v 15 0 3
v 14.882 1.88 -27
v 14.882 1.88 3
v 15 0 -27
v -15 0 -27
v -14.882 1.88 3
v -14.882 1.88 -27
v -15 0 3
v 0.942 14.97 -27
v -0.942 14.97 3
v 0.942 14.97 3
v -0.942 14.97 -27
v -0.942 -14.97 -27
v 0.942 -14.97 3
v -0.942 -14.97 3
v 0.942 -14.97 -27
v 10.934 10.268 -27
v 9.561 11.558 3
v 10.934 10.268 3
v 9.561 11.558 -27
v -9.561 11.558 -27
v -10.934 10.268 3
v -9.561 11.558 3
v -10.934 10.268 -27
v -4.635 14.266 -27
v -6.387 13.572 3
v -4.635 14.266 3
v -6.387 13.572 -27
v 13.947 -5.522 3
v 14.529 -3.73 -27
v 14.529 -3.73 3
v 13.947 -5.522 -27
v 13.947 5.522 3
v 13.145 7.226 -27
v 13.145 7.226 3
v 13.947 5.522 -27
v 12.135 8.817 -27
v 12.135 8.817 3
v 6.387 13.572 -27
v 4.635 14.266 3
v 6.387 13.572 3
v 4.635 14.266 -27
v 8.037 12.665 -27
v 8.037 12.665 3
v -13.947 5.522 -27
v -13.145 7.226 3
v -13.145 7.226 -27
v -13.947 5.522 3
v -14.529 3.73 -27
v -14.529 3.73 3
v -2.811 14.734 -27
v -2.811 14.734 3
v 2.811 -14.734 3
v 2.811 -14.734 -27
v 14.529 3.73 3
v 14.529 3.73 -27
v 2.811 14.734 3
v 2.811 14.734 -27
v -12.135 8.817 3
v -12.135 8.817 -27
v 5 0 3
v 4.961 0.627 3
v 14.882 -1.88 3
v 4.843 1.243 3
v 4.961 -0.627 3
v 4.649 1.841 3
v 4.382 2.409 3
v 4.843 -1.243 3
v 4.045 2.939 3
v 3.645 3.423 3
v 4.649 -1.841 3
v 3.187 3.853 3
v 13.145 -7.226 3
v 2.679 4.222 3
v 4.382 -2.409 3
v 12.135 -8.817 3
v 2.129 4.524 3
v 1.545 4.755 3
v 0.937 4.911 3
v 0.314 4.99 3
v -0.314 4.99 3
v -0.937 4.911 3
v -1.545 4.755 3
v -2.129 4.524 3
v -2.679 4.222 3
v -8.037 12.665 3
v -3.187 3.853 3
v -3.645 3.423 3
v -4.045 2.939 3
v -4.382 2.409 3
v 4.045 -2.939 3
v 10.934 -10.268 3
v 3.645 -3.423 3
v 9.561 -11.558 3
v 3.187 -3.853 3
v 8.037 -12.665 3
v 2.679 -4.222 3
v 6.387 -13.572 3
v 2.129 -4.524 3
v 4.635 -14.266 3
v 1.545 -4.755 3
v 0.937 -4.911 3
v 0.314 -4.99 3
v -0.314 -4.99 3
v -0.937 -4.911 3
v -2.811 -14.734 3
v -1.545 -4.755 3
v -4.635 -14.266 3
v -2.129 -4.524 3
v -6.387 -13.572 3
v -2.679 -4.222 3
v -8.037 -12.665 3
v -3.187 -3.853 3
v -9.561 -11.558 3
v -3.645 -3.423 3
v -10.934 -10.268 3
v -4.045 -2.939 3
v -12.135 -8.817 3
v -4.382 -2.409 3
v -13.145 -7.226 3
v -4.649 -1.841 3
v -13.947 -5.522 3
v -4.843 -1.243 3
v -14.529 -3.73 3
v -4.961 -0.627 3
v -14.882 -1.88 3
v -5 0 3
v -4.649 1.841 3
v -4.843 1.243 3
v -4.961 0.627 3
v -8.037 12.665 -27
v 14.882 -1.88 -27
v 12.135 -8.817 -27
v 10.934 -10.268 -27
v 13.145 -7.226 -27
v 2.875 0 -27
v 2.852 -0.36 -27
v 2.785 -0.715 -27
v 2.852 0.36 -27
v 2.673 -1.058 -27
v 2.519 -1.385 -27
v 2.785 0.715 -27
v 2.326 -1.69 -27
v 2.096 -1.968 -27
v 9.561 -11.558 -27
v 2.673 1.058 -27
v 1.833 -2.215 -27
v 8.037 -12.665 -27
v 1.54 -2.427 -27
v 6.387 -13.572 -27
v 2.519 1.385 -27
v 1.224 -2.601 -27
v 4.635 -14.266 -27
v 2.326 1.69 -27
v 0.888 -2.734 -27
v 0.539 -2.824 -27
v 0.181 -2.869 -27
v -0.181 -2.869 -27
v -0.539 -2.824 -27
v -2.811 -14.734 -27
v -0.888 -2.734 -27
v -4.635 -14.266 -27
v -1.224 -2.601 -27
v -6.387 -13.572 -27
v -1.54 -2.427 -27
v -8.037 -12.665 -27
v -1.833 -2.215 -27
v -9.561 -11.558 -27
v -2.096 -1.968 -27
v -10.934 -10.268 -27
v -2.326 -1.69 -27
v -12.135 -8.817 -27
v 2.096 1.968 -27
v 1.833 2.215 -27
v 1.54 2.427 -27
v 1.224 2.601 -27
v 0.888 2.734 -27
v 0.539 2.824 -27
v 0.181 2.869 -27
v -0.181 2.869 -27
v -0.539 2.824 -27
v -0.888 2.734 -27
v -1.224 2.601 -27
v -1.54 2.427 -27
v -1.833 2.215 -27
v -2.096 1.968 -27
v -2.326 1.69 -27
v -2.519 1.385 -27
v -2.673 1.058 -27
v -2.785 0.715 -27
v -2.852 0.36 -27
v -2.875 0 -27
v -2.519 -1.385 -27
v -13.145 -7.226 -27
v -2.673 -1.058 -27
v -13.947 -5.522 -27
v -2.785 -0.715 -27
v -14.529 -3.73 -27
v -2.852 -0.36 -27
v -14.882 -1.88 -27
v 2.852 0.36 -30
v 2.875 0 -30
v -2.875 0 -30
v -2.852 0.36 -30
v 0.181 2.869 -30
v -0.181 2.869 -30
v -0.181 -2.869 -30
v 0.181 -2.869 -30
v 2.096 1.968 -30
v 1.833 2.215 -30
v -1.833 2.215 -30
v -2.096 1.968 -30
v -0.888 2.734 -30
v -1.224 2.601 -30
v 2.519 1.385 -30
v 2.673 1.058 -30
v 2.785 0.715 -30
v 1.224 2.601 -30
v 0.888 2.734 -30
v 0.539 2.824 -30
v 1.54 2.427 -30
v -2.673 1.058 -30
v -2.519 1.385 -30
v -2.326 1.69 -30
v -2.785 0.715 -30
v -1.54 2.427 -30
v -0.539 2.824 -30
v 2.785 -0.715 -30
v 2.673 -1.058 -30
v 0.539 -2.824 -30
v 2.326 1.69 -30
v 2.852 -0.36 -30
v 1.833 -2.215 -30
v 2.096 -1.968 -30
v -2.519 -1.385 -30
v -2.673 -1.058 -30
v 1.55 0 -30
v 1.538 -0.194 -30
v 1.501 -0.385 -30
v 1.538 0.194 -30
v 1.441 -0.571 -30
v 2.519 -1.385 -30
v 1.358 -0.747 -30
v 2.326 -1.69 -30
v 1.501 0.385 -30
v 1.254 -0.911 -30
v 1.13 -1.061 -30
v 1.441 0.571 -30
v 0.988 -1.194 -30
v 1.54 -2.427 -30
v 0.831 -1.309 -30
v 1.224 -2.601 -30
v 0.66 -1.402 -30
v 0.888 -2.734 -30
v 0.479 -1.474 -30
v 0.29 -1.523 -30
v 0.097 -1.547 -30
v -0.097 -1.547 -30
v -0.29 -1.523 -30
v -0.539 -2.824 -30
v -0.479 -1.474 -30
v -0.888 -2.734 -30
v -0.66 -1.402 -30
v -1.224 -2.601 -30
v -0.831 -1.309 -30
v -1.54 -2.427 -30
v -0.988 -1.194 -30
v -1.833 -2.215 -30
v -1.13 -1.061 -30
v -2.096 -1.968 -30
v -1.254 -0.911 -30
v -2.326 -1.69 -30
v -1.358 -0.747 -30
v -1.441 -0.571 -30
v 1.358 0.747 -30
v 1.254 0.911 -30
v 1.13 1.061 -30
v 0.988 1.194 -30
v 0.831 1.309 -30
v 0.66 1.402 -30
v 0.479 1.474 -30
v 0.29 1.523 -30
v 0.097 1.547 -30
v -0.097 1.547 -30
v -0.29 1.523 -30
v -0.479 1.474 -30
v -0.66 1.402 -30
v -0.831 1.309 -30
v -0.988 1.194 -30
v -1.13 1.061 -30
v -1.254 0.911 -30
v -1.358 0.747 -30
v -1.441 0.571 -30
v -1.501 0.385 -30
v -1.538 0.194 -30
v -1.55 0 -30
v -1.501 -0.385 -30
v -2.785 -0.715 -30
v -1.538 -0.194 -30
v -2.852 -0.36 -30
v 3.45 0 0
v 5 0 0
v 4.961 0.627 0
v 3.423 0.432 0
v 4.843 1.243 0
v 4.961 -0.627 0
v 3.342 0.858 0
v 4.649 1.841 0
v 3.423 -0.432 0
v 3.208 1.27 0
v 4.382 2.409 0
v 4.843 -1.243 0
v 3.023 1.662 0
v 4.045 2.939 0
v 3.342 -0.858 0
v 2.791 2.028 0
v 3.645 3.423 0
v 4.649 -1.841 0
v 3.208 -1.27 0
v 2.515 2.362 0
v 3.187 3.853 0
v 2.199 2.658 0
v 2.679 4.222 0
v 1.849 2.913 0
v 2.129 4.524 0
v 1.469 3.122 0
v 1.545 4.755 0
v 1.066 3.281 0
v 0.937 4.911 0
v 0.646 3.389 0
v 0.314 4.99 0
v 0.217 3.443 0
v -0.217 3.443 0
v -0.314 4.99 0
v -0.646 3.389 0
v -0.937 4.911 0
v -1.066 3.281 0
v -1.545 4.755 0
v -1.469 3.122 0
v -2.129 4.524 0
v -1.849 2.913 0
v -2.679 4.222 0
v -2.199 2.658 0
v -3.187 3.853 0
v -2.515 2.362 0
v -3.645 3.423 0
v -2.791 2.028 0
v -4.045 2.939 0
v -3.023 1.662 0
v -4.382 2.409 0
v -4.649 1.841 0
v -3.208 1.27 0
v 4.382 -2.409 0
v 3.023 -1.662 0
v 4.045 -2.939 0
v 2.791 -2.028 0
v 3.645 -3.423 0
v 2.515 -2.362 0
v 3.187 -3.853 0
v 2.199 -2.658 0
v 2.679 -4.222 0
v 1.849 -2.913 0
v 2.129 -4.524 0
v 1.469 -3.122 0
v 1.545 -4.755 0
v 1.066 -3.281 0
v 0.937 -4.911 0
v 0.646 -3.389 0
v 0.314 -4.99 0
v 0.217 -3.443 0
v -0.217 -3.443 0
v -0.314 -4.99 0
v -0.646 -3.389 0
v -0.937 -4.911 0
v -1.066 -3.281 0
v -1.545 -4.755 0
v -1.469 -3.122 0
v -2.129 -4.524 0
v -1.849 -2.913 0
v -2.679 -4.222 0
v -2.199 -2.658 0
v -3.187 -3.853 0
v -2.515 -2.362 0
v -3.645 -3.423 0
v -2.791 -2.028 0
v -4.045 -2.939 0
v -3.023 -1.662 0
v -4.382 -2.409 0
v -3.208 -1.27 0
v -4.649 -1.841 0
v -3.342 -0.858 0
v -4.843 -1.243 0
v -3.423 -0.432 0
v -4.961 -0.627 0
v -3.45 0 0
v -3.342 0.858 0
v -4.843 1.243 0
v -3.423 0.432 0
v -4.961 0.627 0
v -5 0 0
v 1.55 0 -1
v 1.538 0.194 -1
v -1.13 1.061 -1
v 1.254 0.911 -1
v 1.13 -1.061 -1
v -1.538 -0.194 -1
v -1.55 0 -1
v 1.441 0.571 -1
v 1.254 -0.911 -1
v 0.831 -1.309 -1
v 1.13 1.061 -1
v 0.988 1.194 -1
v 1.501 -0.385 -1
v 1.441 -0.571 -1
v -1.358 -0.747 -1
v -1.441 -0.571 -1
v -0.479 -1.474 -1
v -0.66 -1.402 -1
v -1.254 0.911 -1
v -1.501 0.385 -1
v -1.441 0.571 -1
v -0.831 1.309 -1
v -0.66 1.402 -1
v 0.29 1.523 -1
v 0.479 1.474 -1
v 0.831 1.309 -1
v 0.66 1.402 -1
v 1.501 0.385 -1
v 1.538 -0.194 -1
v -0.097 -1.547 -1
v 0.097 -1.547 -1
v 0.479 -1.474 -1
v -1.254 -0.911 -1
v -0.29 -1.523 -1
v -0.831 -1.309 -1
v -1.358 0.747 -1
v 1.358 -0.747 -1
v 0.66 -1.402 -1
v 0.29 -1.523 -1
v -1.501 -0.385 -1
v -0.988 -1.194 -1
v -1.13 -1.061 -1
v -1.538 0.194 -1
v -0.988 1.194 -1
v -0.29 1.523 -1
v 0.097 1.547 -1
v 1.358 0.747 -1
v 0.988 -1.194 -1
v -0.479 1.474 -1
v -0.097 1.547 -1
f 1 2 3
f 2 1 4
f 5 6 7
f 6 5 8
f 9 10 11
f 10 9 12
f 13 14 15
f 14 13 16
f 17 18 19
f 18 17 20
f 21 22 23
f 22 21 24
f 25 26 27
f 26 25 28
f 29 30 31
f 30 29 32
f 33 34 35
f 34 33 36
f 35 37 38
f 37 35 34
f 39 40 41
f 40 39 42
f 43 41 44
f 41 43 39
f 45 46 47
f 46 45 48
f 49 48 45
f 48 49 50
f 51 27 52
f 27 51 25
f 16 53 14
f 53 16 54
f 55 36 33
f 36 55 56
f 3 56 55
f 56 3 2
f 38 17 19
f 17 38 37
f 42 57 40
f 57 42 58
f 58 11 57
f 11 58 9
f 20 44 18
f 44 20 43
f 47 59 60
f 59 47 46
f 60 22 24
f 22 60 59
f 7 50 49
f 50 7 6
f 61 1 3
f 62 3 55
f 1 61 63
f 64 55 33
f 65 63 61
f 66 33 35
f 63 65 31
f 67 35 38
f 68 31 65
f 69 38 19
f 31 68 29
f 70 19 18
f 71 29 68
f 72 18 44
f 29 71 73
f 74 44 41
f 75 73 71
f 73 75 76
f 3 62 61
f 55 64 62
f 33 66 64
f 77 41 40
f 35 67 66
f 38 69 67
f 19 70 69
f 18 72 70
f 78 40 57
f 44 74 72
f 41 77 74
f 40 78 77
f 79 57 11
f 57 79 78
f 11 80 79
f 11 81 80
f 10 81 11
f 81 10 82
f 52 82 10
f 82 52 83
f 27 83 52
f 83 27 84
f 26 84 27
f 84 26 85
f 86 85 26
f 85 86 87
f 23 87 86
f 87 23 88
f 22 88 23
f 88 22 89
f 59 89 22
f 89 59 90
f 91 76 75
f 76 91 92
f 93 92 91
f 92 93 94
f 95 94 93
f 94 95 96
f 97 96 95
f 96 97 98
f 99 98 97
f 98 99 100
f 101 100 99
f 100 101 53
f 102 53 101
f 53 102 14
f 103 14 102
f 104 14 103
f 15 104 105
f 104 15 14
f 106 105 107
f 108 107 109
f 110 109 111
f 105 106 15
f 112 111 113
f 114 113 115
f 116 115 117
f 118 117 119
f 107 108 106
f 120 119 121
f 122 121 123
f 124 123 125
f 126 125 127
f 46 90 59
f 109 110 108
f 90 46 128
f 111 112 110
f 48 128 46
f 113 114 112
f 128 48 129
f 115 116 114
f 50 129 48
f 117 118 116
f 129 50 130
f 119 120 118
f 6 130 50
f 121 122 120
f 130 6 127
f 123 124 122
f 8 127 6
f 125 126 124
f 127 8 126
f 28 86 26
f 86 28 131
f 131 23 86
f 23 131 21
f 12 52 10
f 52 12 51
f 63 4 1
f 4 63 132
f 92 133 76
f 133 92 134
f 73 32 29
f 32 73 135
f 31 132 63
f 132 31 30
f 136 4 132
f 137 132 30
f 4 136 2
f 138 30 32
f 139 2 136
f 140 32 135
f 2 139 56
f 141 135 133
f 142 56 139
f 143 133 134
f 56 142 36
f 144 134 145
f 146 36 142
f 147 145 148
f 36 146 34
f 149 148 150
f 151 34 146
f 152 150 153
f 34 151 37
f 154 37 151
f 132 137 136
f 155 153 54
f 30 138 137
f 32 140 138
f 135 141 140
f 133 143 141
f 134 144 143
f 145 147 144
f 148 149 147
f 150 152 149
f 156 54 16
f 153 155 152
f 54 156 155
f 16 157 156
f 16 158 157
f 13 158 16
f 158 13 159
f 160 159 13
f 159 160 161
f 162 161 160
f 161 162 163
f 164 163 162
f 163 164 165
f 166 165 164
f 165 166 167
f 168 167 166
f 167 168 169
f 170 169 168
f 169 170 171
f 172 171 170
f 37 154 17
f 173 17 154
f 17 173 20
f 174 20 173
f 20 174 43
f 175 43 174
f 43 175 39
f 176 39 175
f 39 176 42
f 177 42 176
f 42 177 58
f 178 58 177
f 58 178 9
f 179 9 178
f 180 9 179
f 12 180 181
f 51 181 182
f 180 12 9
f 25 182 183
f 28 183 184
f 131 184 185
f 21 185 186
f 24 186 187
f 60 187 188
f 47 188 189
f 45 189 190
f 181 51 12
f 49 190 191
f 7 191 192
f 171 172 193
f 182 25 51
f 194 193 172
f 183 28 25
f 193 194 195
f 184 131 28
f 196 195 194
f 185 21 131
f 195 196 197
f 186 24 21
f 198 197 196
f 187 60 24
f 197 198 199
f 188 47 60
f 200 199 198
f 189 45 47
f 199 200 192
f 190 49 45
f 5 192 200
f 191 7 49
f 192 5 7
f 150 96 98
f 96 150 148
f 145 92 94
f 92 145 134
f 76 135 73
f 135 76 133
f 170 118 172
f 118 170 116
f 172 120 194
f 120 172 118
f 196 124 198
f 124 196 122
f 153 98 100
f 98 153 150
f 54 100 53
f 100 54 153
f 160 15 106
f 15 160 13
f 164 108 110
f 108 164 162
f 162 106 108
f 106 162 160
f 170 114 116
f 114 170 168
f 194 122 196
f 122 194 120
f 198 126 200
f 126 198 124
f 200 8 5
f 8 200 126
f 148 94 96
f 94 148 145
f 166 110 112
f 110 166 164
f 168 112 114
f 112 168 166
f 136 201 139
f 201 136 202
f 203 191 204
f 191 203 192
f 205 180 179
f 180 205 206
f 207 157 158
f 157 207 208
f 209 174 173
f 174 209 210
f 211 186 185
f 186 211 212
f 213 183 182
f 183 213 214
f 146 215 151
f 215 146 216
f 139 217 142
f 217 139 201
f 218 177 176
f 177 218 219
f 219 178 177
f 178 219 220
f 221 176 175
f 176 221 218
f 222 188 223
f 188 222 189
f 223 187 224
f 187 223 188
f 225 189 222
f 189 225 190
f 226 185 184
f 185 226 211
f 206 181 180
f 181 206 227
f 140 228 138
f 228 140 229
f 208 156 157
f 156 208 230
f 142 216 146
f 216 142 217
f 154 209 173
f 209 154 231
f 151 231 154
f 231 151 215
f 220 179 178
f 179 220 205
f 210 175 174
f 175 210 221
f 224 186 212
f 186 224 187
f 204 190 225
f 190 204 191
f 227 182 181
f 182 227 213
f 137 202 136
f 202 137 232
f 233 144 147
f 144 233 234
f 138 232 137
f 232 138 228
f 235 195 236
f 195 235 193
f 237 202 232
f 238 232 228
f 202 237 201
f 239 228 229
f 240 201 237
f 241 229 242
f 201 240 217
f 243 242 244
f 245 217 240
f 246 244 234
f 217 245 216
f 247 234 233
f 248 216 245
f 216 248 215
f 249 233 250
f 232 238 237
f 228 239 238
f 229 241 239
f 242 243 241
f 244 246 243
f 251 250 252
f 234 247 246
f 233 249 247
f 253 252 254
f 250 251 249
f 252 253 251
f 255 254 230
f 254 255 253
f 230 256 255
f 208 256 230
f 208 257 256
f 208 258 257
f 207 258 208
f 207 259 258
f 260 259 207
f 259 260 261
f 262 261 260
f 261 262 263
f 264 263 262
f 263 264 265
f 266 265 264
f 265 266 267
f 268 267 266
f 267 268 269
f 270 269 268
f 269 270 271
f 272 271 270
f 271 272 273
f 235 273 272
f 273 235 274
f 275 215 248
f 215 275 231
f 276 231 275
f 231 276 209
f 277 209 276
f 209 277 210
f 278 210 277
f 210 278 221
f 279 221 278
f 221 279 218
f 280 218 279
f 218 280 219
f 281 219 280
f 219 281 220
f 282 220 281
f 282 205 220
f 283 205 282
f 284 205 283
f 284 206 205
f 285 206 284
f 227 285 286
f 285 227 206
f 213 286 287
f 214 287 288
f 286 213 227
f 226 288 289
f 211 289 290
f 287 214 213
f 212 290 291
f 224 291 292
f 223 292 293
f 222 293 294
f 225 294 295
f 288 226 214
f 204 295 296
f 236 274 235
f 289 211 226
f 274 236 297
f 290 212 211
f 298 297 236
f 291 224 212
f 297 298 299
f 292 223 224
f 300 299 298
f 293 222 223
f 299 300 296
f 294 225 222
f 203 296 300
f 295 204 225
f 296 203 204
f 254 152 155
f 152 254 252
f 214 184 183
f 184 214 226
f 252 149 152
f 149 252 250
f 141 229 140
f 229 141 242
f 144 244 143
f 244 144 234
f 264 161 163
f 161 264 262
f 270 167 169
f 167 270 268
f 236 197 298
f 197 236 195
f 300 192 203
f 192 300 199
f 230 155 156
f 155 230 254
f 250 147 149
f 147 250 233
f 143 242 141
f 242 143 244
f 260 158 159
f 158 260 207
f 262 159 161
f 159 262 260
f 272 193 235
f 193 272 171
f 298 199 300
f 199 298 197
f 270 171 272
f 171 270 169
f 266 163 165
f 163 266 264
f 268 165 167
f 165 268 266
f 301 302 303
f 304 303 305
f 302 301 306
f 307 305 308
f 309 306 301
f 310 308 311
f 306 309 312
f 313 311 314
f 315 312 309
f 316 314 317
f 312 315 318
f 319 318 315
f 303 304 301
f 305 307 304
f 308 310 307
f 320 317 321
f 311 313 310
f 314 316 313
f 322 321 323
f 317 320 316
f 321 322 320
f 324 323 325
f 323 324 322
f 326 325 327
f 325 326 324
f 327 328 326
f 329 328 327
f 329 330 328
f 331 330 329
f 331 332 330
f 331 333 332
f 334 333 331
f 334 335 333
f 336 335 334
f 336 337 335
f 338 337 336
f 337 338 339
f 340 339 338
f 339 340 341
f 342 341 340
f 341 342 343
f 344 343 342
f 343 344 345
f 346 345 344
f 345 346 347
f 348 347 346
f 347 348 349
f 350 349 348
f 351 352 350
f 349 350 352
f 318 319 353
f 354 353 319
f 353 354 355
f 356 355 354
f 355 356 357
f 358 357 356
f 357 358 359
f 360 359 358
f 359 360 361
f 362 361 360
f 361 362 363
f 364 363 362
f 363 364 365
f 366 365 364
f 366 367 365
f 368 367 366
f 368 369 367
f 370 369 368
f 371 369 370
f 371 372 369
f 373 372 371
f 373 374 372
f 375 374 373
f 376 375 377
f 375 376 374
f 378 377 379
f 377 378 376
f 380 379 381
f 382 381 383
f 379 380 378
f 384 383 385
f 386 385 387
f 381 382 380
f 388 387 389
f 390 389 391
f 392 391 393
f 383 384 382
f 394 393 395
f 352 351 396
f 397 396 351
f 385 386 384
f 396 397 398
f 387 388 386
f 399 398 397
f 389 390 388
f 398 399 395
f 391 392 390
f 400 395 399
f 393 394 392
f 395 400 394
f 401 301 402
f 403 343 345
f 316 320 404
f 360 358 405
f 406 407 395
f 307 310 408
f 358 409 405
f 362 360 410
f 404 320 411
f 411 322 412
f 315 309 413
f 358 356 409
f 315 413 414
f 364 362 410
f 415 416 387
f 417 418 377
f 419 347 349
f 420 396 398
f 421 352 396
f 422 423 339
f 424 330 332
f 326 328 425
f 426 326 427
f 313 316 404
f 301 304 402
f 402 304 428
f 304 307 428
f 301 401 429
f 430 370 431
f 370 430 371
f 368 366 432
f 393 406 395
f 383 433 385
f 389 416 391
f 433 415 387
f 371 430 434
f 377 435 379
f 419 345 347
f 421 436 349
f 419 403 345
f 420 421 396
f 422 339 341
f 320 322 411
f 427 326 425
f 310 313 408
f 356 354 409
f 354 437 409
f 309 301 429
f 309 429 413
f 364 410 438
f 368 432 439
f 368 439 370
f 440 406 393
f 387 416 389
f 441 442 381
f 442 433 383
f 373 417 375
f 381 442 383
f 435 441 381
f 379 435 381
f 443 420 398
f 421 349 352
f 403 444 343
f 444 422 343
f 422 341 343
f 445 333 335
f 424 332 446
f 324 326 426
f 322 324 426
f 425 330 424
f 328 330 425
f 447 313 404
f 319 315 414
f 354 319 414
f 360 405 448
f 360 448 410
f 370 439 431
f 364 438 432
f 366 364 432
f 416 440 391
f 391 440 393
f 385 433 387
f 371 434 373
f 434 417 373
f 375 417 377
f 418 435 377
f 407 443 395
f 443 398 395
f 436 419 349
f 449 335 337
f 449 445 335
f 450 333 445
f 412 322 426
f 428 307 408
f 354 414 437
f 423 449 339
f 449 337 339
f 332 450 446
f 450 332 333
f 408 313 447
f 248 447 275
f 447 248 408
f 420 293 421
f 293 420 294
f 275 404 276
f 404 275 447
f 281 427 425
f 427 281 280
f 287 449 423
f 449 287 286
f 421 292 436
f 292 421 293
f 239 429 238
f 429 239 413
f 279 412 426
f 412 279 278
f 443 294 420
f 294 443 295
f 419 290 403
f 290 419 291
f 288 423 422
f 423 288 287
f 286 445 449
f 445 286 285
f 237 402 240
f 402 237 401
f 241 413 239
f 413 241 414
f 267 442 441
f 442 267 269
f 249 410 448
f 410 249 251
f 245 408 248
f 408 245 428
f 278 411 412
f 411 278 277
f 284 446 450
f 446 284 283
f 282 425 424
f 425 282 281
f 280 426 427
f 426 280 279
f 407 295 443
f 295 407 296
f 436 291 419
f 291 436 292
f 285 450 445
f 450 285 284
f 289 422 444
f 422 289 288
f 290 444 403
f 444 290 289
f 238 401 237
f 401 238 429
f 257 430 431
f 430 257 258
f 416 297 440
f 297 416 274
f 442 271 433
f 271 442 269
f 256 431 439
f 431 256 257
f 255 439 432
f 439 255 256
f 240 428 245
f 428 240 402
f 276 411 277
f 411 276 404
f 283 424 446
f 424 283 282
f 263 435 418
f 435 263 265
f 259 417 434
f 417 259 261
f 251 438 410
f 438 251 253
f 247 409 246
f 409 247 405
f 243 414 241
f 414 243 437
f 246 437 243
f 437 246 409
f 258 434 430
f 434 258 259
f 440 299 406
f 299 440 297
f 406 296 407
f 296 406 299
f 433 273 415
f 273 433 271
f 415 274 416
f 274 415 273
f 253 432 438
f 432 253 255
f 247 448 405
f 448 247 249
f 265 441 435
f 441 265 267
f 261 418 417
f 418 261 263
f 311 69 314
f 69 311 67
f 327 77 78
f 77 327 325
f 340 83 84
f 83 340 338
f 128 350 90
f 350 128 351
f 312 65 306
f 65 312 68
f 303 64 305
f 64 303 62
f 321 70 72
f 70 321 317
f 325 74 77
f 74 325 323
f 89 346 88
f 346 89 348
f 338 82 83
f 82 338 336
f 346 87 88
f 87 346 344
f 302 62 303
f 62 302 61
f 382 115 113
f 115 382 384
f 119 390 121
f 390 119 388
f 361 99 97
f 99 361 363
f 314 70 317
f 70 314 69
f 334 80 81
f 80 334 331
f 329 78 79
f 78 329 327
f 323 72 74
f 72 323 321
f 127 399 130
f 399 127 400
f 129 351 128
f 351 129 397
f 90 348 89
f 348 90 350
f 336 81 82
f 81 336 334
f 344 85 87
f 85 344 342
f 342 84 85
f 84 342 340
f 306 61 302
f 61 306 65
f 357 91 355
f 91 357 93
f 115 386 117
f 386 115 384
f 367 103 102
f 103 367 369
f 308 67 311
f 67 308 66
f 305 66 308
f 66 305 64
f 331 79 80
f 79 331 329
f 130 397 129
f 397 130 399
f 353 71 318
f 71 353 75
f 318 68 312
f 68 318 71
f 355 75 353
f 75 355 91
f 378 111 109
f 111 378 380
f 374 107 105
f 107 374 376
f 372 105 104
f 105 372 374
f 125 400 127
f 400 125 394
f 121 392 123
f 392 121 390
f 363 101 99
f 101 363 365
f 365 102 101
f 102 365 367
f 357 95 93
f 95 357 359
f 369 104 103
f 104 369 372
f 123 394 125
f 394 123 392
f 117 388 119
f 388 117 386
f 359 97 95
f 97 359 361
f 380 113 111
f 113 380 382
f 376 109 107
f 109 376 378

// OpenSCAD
$fn = 50;


difference() {
	union() {
		translate(v = [0, 0, -27.0000000000]) {
			cylinder(h = 30, r = 15.0000000000);
		}
		#translate(v = [0, 0, -30.0000000000]) {
			cylinder(h = 30, r = 2.8750000000);
		}
	}
	union() {
		translate(v = [0, 0, 0]) {
			rotate(a = [0, 0, 0]) {
				difference() {
					union() {
						translate(v = [0, 0, -30.0000000000]) {
							cylinder(h = 30, r = 1.2500000000);
						}
						translate(v = [0, 0, -1.0000000000]) {
							cylinder(h = 1.0000000000, r1 = 1.5500000000, r2 = 3.4500000000);
						}
						translate(v = [0, 0, -30.0000000000]) {
							cylinder(h = 30, r = 1.5500000000);
						}
						translate(v = [0, 0, -30.0000000000]) {
							cylinder(h = 30, r = 1.2500000000);
						}
					}
					union();
				}
			}
		}
		#cylinder(h = 3, r = 5.0000000000);
	}
}
